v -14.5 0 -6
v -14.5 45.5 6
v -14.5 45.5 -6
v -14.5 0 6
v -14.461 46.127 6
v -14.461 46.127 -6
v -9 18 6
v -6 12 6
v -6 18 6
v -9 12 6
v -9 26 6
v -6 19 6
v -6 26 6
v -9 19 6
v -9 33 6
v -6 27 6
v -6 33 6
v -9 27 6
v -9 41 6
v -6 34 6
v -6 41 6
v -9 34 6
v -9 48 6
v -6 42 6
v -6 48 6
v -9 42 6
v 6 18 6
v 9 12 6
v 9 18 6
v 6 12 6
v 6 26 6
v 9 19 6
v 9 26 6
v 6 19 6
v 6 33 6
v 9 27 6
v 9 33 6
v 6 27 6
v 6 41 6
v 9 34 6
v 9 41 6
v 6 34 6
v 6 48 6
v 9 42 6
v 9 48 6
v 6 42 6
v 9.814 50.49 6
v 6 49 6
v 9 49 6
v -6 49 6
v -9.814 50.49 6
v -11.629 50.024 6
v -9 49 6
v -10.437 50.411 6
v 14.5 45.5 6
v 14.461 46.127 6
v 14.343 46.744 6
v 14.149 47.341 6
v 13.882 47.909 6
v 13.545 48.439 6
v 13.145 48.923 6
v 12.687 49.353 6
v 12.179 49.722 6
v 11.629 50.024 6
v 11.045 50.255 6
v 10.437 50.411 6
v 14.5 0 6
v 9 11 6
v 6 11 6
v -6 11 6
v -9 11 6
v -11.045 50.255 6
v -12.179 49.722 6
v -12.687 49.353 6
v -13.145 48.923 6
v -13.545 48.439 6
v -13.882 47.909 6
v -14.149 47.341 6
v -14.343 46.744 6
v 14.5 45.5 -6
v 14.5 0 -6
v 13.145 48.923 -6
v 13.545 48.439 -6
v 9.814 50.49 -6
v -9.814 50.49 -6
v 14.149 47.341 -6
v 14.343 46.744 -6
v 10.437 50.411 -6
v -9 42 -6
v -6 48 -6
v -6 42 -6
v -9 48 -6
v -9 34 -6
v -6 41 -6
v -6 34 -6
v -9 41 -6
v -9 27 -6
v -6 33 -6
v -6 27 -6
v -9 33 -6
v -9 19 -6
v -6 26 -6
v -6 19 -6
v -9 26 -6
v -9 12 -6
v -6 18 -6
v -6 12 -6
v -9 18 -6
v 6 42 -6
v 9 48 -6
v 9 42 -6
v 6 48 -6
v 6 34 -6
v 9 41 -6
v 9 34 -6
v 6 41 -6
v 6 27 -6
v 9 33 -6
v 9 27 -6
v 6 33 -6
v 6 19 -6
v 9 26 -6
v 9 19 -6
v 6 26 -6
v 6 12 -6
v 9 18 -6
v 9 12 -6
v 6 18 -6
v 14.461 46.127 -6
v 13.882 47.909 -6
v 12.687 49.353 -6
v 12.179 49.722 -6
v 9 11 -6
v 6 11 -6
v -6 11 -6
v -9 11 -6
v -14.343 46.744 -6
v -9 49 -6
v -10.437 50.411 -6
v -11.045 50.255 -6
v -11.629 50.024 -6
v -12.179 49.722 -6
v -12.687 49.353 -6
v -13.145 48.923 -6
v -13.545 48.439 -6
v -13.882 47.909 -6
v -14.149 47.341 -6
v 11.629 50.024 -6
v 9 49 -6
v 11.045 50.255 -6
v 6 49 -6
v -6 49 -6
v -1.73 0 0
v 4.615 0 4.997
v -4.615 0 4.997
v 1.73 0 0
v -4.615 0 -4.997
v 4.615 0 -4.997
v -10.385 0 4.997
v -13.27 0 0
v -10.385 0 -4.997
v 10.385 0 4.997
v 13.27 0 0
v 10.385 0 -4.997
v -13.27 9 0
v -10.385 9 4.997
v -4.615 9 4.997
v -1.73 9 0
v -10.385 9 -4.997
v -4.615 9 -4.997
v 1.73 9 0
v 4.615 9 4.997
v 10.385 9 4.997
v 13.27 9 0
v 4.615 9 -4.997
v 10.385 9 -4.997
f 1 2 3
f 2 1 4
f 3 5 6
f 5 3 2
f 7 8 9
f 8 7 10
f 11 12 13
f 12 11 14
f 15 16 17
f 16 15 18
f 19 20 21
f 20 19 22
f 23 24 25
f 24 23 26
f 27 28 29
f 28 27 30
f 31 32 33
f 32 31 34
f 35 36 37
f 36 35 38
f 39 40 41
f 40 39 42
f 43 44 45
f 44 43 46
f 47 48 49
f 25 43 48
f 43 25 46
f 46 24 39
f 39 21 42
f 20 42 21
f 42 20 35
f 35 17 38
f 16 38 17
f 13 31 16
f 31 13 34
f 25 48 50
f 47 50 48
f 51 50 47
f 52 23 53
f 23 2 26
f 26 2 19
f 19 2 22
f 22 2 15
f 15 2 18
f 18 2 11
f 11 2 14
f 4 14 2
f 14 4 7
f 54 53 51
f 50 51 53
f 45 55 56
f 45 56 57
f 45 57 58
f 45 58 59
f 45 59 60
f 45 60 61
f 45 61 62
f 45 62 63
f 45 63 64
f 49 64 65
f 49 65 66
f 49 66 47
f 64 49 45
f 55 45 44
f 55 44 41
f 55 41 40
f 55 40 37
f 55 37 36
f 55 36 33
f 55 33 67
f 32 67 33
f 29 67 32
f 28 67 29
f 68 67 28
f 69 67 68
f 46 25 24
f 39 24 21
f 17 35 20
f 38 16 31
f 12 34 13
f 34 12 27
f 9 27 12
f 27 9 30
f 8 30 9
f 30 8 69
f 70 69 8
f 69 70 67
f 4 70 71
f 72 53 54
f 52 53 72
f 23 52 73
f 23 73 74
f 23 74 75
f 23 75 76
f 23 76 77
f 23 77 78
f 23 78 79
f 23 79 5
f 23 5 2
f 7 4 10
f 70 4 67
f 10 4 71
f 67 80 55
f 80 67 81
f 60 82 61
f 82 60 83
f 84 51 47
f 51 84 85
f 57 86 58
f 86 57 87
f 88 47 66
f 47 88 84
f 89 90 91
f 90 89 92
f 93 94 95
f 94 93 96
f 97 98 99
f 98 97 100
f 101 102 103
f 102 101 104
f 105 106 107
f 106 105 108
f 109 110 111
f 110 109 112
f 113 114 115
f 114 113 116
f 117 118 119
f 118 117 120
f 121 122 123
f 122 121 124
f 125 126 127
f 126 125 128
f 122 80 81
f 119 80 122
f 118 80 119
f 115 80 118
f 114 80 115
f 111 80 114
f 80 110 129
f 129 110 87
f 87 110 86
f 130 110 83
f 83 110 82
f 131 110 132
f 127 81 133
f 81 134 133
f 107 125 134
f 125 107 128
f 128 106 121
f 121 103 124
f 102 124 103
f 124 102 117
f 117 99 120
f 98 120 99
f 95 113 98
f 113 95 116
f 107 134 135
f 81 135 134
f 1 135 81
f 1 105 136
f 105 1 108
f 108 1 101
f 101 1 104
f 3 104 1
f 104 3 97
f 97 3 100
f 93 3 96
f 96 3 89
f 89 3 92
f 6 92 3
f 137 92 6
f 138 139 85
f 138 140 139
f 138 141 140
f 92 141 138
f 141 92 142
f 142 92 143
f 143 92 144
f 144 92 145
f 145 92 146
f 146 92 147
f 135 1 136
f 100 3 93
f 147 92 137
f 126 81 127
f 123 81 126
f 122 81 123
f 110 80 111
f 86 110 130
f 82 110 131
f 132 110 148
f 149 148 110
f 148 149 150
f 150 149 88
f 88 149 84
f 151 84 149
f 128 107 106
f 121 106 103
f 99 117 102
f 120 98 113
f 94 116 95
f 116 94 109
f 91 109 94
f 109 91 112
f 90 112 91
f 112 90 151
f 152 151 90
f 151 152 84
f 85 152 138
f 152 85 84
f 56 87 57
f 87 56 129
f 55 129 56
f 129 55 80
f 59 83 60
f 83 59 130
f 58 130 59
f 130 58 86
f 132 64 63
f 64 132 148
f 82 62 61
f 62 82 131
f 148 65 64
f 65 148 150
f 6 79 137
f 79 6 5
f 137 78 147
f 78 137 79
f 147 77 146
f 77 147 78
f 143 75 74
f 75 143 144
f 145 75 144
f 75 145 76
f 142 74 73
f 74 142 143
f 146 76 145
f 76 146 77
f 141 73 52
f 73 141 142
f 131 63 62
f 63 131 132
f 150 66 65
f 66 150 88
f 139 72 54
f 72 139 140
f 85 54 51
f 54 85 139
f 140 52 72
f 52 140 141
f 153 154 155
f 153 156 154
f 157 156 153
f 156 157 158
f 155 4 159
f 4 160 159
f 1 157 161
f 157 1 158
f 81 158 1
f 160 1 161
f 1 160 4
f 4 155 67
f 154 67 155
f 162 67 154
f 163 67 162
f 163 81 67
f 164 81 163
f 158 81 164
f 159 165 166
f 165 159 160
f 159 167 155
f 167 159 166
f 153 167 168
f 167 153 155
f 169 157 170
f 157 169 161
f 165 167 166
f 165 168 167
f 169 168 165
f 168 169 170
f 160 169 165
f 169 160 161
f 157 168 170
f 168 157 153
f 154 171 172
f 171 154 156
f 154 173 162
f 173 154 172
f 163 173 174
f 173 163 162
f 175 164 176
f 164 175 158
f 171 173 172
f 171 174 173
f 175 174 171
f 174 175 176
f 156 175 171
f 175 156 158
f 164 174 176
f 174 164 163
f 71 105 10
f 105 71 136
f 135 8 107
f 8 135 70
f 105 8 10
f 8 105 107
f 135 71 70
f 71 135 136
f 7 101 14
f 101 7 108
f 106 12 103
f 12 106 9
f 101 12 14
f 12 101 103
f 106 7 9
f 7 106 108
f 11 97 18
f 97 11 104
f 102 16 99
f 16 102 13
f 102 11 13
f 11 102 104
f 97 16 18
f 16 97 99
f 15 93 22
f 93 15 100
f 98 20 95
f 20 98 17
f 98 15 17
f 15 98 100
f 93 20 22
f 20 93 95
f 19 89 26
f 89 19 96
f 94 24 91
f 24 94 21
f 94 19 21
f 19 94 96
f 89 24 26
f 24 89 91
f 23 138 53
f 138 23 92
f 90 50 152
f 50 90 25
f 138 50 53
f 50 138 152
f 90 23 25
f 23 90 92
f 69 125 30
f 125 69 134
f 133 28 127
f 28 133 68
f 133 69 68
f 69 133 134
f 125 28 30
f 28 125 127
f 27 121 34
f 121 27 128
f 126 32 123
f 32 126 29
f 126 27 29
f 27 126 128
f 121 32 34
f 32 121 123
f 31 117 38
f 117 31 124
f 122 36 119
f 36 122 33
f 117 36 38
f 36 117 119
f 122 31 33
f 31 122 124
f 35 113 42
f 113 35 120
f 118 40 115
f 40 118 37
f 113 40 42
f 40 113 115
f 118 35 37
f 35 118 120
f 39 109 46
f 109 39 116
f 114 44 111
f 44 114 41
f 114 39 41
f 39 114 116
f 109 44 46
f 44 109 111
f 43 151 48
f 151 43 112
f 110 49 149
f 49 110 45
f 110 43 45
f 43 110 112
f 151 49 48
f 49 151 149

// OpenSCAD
$fn = 50;


difference() {
	union() {
		translate(v = [0, 28.5000000000, -6.0000000000]) {
			hull() {
				translate(v = [-9.5000000000, 17.0000000000, 0]) {
					cylinder(h = 12, r = 5);
				}
				translate(v = [9.5000000000, 17.0000000000, 0]) {
					cylinder(h = 12, r = 5);
				}
				translate(v = [-9.5000000000, -17.0000000000, 0]) {
					cylinder(h = 12, r = 5);
				}
				translate(v = [9.5000000000, -17.0000000000, 0]) {
					cylinder(h = 12, r = 5);
				}
			}
		}
		translate(v = [0, 28.5000000000, -6.0000000000]) {
			hull() {
				translate(v = [-9.5000000000, 17.0000000000, 0]) {
					cylinder(h = 12, r = 5);
				}
				translate(v = [9.5000000000, 17.0000000000, 0]) {
					cylinder(h = 12, r = 5);
				}
				translate(v = [-9.5000000000, -17.0000000000, 0]) {
					cylinder(h = 12, r = 5);
				}
				translate(v = [9.5000000000, -17.0000000000, 0]) {
					cylinder(h = 12, r = 5);
				}
			}
		}
		translate(v = [-14.5000000000, 0, -6.0000000000]) {
			cube(size = [29, 13.5000000000, 12]);
		}
	}
	union() {
		translate(v = [-7.5000000000, 9, 0]) {
			rotate(a = [0, 0, 0]) {
				difference() {
					union() {
						rotate(a = [90, 0, 0]) {
							linear_extrude(height = 13.5000000000) {
								polygon(points = [[5.7700000000, 0.0000000000], [2.8850000000, 4.9969665798], [-2.8850000000, 4.9969665798], [-5.7700000000, 0.0000000000], [-2.8850000000, -4.9969665798], [2.8850000000, -4.9969665798]]);
							}
						}
					}
					union();
				}
			}
		}
		translate(v = [7.5000000000, 9, 0]) {
			rotate(a = [0, 0, 0]) {
				difference() {
					union() {
						rotate(a = [90, 0, 0]) {
							linear_extrude(height = 13.5000000000) {
								polygon(points = [[5.7700000000, 0.0000000000], [2.8850000000, 4.9969665798], [-2.8850000000, 4.9969665798], [-5.7700000000, 0.0000000000], [-2.8850000000, -4.9969665798], [2.8850000000, -4.9969665798]]);
							}
						}
					}
					union();
				}
			}
		}
		translate(v = [-9.0000000000, 11.0000000000, -50]) {
			cube(size = [3, 1, 100]);
		}
		translate(v = [-9.0000000000, 18.0000000000, -50]) {
			cube(size = [3, 1, 100]);
		}
		translate(v = [-9.0000000000, 26.0000000000, -50]) {
			cube(size = [3, 1, 100]);
		}
		translate(v = [-9.0000000000, 33.0000000000, -50]) {
			cube(size = [3, 1, 100]);
		}
		translate(v = [-9.0000000000, 41.0000000000, -50]) {
			cube(size = [3, 1, 100]);
		}
		translate(v = [-9.0000000000, 48.0000000000, -50]) {
			cube(size = [3, 1, 100]);
		}
		translate(v = [-7.5000000000, 8, 0]) {
			rotate(a = [90, 0, 0]) {
				cylinder(h = 8, r = 3.0000000000);
			}
		}
		translate(v = [6.0000000000, 11.0000000000, -50]) {
			cube(size = [3, 1, 100]);
		}
		translate(v = [6.0000000000, 18.0000000000, -50]) {
			cube(size = [3, 1, 100]);
		}
		translate(v = [6.0000000000, 26.0000000000, -50]) {
			cube(size = [3, 1, 100]);
		}
		translate(v = [6.0000000000, 33.0000000000, -50]) {
			cube(size = [3, 1, 100]);
		}
		translate(v = [6.0000000000, 41.0000000000, -50]) {
			cube(size = [3, 1, 100]);
		}
		translate(v = [6.0000000000, 48.0000000000, -50]) {
			cube(size = [3, 1, 100]);
		}
		translate(v = [7.5000000000, 8, 0]) {
			rotate(a = [90, 0, 0]) {
				cylinder(h = 8, r = 3.0000000000);
			}
		}
	}
}
